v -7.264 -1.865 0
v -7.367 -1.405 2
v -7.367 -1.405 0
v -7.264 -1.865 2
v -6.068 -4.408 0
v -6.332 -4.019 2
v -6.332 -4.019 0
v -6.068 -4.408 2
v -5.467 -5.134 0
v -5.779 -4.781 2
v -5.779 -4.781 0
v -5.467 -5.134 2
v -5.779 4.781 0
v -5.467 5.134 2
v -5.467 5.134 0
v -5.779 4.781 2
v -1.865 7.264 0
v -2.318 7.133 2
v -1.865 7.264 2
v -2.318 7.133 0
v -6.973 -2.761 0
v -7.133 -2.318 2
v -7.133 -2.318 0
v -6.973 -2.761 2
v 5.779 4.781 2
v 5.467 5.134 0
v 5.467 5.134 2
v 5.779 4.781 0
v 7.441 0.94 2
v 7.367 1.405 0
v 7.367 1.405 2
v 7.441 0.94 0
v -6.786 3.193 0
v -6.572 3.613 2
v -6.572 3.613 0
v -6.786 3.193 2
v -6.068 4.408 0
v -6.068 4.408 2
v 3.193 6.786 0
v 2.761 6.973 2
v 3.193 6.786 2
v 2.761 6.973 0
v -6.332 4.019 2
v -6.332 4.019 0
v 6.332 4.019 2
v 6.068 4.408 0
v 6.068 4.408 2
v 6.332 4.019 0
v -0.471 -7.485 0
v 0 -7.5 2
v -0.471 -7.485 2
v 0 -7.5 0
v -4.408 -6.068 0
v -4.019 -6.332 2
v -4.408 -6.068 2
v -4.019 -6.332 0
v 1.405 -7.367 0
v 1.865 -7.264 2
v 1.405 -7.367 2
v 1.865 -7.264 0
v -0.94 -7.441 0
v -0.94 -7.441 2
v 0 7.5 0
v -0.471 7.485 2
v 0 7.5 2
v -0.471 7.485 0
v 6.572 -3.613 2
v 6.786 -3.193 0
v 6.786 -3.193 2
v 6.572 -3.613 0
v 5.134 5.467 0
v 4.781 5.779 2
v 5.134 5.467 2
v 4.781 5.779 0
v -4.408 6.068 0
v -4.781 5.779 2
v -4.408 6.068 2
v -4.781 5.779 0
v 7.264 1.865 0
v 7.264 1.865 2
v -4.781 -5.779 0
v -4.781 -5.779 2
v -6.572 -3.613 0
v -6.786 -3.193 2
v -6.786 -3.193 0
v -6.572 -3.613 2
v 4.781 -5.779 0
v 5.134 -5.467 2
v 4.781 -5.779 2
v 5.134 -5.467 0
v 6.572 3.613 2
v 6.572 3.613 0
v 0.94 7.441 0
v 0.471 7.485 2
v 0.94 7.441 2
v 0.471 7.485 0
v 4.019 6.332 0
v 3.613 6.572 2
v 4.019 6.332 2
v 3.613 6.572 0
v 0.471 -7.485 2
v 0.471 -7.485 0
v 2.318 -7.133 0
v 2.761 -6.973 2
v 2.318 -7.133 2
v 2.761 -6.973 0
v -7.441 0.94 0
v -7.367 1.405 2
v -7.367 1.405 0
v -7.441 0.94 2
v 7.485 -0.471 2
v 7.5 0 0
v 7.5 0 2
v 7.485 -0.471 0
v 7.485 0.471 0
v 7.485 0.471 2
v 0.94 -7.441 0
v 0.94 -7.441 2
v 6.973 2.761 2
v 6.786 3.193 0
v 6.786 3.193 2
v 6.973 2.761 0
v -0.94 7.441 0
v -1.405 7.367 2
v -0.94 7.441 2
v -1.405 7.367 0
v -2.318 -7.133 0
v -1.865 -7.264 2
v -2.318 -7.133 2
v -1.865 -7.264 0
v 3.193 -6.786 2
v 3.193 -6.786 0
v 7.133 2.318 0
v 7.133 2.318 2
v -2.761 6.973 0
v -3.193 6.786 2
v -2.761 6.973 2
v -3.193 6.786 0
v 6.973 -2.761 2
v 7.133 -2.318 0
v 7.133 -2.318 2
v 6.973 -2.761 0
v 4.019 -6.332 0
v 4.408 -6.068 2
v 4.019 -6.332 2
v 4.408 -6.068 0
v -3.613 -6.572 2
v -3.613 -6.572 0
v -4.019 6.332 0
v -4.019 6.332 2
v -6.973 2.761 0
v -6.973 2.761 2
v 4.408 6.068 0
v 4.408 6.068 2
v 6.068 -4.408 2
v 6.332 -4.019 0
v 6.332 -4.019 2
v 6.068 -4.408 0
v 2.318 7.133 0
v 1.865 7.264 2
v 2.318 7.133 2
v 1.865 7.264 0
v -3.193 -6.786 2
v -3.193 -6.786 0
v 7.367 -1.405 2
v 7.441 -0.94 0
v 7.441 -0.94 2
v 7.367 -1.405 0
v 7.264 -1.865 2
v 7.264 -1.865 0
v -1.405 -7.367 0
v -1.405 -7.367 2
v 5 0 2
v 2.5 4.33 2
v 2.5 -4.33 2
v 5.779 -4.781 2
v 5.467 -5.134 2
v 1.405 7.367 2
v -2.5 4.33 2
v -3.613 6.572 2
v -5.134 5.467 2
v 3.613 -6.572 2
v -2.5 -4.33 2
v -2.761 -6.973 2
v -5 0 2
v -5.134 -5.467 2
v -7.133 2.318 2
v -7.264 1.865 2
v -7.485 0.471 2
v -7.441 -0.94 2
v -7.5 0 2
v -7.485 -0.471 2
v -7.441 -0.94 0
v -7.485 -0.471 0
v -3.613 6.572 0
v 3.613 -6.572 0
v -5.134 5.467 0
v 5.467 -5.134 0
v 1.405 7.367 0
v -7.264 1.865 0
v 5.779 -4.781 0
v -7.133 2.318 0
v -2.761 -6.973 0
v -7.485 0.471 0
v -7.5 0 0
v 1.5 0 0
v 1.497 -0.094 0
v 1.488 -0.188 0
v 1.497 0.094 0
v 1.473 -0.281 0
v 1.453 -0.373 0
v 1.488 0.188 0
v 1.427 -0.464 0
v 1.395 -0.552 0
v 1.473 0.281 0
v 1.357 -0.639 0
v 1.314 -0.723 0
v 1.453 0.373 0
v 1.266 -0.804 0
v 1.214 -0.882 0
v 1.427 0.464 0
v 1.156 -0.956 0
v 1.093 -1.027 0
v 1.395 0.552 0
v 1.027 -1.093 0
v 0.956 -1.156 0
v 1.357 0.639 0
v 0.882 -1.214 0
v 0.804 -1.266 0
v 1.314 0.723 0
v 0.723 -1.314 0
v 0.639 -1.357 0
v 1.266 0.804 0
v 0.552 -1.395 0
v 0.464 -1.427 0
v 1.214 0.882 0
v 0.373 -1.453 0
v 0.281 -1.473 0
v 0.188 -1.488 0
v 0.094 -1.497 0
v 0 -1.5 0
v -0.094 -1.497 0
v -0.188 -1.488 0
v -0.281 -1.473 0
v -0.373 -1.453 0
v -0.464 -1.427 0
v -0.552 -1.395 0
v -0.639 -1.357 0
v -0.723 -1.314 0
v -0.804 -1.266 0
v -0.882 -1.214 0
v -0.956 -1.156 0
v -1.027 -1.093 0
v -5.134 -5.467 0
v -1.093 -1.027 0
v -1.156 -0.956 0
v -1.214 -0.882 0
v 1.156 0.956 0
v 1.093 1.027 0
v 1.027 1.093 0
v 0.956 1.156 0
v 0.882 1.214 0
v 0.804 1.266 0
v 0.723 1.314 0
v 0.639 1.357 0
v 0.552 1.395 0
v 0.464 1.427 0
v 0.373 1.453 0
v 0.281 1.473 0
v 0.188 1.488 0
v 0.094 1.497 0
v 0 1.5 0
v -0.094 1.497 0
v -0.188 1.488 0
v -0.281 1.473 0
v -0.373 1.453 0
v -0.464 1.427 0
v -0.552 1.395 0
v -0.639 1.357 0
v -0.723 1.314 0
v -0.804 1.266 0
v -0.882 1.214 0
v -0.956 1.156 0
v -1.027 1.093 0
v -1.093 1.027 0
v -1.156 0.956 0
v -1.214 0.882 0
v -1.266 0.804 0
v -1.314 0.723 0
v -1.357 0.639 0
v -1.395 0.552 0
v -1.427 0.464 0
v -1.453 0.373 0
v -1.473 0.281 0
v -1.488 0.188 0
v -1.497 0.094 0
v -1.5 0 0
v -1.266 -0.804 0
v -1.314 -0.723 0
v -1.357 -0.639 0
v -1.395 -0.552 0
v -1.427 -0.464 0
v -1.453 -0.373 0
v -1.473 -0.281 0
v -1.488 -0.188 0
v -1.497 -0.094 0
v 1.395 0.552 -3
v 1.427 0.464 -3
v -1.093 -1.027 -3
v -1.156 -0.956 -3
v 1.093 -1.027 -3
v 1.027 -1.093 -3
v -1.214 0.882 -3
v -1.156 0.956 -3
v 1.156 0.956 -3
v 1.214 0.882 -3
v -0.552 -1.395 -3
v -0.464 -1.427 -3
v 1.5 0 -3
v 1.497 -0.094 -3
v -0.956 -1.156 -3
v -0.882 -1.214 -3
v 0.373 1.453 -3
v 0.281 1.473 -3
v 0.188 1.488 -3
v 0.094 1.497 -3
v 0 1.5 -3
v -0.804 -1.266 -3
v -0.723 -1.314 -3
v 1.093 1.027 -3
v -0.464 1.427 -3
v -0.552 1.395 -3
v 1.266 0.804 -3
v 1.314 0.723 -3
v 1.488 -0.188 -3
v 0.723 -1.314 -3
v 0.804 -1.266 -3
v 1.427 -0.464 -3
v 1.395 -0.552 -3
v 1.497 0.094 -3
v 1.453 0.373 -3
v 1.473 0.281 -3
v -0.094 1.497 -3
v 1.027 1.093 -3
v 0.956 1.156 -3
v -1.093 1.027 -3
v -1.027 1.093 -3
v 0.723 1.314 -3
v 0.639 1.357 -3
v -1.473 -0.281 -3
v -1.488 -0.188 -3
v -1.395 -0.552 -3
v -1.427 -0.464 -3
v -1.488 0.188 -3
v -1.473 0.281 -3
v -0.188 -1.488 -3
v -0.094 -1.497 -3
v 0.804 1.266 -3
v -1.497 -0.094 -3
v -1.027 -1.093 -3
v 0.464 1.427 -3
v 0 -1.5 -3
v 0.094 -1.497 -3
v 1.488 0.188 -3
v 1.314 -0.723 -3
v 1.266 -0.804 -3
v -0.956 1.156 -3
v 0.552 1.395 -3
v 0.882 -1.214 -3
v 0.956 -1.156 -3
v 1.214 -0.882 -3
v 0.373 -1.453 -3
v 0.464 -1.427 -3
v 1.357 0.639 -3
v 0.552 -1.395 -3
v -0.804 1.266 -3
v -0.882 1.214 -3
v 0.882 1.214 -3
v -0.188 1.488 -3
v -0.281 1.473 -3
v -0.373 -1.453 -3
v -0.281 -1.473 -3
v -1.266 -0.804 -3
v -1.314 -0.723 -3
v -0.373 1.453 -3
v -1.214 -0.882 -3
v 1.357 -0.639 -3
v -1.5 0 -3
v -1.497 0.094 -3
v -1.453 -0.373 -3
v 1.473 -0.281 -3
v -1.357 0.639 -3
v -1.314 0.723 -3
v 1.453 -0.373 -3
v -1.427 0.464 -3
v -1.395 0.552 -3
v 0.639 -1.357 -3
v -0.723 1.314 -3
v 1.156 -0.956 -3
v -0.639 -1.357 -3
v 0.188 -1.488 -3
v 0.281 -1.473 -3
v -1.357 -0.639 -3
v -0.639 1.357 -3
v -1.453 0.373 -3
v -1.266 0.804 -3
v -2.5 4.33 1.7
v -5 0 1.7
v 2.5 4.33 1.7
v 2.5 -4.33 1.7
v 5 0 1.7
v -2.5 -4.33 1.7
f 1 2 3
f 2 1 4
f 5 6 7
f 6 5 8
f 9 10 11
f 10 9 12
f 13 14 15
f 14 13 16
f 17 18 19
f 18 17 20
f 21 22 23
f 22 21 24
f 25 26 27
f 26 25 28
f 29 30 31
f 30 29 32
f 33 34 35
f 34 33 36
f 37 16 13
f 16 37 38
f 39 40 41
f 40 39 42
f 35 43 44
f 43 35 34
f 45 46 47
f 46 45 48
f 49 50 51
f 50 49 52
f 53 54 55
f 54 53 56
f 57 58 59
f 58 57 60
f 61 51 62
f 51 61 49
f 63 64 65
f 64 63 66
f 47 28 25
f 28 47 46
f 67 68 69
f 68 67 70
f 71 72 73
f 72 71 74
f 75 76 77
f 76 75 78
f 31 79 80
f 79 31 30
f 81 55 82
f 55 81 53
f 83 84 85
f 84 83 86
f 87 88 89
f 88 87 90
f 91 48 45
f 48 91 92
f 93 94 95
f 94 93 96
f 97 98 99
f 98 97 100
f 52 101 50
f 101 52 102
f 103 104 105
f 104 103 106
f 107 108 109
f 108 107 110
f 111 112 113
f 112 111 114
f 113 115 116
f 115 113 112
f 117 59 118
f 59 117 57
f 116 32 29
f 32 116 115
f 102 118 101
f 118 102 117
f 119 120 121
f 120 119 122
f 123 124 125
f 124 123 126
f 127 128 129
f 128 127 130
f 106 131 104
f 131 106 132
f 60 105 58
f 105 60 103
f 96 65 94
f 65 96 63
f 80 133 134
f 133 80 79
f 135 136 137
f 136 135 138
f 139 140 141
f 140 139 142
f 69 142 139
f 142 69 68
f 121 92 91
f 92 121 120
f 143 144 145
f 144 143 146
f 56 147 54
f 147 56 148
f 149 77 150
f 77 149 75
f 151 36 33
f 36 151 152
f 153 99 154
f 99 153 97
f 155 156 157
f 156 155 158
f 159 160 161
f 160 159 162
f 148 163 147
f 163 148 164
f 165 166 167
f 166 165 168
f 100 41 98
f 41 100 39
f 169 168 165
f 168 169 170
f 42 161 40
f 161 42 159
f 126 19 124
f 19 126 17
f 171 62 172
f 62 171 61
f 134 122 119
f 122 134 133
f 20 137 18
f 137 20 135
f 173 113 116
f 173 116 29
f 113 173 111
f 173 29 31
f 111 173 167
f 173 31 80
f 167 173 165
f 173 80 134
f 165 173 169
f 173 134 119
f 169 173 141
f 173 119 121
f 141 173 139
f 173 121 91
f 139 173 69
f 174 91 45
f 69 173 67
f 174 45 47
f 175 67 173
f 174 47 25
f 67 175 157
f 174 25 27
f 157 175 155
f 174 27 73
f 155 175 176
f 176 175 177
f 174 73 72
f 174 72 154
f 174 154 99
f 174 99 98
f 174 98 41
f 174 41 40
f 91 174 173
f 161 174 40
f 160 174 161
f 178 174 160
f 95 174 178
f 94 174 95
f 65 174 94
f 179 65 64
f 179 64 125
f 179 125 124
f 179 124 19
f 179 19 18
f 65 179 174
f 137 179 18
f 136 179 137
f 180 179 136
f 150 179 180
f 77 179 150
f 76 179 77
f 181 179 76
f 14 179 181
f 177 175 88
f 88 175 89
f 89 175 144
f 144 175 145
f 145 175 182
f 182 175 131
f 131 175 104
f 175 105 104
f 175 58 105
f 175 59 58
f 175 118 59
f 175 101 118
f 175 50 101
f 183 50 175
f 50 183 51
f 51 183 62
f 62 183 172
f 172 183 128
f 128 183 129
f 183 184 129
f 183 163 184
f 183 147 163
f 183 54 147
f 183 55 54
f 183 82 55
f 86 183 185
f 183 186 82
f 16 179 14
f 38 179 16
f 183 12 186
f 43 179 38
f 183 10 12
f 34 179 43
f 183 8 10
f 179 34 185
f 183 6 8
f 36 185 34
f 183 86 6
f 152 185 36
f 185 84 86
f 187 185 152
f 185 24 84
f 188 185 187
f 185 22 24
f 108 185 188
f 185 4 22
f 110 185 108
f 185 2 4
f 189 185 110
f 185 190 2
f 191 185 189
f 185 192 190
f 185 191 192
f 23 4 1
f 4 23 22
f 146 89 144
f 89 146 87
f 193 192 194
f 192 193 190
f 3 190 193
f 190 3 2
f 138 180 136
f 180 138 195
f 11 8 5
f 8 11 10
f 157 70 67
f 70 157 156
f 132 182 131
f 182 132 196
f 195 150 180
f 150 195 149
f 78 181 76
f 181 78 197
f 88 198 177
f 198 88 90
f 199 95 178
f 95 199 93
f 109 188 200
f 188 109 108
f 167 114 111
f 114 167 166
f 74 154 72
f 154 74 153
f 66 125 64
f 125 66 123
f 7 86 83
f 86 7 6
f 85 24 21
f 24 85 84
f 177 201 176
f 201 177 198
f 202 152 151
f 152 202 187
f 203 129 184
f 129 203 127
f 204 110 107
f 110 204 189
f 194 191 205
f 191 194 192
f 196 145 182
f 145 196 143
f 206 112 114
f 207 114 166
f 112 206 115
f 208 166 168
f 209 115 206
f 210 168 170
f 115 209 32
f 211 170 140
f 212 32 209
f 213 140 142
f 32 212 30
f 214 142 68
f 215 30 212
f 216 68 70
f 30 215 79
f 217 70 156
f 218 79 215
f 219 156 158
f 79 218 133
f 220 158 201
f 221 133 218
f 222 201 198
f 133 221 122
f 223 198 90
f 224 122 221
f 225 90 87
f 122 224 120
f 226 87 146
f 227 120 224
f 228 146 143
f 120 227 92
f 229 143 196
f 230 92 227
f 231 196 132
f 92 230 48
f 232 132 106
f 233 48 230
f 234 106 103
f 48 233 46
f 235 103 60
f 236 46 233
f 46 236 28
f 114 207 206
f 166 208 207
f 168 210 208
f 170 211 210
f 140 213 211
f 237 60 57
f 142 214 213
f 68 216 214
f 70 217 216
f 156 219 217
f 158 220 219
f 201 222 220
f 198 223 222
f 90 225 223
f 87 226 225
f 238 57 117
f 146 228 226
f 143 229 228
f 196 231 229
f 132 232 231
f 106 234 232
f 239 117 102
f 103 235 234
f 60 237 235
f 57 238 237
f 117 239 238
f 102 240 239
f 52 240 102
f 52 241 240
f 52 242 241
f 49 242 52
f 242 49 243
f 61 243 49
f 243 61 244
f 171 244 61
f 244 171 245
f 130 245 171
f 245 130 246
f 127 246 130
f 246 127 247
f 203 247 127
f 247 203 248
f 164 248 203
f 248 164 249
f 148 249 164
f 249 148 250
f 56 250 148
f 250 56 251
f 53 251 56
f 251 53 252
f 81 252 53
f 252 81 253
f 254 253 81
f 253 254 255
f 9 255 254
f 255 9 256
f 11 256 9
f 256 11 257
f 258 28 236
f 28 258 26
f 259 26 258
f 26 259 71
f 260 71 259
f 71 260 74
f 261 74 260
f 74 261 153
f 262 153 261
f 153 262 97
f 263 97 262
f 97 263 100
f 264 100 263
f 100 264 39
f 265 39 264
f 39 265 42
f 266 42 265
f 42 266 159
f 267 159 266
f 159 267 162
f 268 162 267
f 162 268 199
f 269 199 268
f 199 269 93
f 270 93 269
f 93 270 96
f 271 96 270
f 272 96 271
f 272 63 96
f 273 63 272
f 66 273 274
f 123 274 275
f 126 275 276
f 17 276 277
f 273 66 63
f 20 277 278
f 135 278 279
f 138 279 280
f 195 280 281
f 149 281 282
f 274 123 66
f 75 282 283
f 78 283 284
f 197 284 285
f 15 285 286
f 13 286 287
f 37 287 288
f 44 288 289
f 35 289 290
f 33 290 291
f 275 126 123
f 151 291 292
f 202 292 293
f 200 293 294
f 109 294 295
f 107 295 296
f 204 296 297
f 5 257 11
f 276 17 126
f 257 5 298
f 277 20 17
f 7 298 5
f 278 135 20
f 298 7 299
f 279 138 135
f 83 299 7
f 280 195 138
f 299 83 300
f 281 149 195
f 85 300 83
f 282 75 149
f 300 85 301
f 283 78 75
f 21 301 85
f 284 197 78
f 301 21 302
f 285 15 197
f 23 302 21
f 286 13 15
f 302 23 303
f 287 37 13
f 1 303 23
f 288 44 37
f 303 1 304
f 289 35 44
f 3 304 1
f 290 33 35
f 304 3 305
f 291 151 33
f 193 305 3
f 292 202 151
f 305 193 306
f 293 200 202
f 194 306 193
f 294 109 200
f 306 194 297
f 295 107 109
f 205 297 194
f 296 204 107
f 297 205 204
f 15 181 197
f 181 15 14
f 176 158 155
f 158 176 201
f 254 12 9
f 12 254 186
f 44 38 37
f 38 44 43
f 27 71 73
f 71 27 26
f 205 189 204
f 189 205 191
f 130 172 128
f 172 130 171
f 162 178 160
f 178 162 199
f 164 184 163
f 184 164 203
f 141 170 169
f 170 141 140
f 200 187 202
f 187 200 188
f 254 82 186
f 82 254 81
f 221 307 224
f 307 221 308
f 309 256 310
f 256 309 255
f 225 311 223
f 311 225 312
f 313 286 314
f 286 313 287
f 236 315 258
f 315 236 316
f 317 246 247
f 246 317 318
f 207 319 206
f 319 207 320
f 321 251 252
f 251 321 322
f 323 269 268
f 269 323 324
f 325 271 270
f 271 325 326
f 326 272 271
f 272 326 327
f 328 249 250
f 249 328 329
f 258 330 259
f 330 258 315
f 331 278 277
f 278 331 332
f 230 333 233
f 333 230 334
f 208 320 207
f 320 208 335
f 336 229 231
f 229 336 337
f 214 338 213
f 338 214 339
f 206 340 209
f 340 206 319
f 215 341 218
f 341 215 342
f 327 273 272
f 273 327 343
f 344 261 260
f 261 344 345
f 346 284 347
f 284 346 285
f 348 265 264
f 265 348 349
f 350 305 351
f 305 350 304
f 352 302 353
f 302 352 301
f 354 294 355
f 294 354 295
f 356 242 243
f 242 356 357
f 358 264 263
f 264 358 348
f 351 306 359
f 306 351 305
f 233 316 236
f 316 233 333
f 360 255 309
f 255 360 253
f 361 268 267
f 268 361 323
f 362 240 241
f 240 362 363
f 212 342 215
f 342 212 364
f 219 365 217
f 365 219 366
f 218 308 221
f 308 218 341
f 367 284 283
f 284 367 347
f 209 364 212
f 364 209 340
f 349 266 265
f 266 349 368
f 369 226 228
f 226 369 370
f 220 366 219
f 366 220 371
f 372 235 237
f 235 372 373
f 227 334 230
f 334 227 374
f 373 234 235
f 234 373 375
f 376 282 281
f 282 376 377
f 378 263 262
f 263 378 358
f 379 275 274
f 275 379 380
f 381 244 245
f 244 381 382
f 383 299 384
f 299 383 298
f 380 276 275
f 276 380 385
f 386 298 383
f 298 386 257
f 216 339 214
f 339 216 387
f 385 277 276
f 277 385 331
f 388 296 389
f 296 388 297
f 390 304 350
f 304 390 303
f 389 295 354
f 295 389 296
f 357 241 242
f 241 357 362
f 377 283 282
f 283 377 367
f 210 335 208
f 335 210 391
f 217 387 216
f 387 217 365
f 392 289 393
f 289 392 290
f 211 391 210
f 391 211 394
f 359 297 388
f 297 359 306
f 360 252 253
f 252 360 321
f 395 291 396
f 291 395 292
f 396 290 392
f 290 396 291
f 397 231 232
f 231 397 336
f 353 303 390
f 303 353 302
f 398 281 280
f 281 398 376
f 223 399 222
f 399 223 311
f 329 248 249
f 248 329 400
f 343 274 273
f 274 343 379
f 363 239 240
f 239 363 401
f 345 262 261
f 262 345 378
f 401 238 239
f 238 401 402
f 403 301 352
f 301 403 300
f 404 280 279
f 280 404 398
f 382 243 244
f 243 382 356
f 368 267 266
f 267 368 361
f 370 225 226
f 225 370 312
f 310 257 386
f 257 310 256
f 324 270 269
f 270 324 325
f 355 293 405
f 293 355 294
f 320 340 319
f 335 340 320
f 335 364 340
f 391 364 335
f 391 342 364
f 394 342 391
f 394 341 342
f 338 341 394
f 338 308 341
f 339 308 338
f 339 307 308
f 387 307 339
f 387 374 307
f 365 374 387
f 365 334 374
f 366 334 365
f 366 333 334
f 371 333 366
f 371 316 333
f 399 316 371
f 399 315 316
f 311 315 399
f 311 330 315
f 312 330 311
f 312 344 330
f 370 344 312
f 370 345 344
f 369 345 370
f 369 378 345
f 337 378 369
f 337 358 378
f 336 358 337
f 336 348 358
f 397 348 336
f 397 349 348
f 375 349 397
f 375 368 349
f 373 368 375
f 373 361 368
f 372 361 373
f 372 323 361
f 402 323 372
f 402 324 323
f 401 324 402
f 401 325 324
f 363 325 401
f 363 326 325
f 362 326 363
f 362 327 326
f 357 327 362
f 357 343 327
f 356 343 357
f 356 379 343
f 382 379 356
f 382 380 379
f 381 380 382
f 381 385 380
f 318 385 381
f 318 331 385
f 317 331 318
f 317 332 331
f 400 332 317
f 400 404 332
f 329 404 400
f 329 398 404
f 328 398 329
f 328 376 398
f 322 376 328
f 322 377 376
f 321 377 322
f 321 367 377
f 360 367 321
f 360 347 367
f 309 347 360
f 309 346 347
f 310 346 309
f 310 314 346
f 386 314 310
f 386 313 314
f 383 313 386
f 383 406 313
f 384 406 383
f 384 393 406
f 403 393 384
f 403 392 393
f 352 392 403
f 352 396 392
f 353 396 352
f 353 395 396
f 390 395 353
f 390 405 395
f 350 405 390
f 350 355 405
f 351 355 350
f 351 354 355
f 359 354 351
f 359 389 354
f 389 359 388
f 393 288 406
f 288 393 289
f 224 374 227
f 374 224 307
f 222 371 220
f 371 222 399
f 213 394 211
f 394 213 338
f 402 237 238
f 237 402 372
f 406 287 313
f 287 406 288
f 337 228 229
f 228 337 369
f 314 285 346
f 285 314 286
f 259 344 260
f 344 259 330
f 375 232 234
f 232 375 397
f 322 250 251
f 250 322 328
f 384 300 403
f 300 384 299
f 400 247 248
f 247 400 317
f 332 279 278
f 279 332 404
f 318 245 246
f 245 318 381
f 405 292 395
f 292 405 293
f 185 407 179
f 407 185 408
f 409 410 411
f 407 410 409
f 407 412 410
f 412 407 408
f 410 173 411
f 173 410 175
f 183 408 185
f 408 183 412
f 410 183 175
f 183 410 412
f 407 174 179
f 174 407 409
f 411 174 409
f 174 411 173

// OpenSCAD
// TABLE WARS - Button Glyph Cap
// Printed separately in PETG, glued to tactile button

/* [Dimensions] */
outer_diameter = 15;      // mm
thickness = 2;            // mm
pin_diameter = 3;         // mm (underside pin for button stem)
pin_height = 3;           // mm

/* [Forerunner Glyph] */
glyph_depth = 0.3;        // mm (engraved symbol)
glyph_diameter = 10;      // mm

/* [Resolution] */
$fn = 100;

module button_cap() {
    difference() {
        union() {
            // Main cap disc
            cylinder(h = thickness, d = outer_diameter);

            // Underside pin (contacts button stem)
            translate([0, 0, -pin_height])
                cylinder(h = pin_height, d = pin_diameter);
        }

        // Forerunner glyph on top (simplified hexagon)
        translate([0, 0, thickness - glyph_depth])
            linear_extrude(height = glyph_depth + 0.5)
                circle(d = glyph_diameter, $fn = 6); // Hexagon
    }
}

button_cap();
